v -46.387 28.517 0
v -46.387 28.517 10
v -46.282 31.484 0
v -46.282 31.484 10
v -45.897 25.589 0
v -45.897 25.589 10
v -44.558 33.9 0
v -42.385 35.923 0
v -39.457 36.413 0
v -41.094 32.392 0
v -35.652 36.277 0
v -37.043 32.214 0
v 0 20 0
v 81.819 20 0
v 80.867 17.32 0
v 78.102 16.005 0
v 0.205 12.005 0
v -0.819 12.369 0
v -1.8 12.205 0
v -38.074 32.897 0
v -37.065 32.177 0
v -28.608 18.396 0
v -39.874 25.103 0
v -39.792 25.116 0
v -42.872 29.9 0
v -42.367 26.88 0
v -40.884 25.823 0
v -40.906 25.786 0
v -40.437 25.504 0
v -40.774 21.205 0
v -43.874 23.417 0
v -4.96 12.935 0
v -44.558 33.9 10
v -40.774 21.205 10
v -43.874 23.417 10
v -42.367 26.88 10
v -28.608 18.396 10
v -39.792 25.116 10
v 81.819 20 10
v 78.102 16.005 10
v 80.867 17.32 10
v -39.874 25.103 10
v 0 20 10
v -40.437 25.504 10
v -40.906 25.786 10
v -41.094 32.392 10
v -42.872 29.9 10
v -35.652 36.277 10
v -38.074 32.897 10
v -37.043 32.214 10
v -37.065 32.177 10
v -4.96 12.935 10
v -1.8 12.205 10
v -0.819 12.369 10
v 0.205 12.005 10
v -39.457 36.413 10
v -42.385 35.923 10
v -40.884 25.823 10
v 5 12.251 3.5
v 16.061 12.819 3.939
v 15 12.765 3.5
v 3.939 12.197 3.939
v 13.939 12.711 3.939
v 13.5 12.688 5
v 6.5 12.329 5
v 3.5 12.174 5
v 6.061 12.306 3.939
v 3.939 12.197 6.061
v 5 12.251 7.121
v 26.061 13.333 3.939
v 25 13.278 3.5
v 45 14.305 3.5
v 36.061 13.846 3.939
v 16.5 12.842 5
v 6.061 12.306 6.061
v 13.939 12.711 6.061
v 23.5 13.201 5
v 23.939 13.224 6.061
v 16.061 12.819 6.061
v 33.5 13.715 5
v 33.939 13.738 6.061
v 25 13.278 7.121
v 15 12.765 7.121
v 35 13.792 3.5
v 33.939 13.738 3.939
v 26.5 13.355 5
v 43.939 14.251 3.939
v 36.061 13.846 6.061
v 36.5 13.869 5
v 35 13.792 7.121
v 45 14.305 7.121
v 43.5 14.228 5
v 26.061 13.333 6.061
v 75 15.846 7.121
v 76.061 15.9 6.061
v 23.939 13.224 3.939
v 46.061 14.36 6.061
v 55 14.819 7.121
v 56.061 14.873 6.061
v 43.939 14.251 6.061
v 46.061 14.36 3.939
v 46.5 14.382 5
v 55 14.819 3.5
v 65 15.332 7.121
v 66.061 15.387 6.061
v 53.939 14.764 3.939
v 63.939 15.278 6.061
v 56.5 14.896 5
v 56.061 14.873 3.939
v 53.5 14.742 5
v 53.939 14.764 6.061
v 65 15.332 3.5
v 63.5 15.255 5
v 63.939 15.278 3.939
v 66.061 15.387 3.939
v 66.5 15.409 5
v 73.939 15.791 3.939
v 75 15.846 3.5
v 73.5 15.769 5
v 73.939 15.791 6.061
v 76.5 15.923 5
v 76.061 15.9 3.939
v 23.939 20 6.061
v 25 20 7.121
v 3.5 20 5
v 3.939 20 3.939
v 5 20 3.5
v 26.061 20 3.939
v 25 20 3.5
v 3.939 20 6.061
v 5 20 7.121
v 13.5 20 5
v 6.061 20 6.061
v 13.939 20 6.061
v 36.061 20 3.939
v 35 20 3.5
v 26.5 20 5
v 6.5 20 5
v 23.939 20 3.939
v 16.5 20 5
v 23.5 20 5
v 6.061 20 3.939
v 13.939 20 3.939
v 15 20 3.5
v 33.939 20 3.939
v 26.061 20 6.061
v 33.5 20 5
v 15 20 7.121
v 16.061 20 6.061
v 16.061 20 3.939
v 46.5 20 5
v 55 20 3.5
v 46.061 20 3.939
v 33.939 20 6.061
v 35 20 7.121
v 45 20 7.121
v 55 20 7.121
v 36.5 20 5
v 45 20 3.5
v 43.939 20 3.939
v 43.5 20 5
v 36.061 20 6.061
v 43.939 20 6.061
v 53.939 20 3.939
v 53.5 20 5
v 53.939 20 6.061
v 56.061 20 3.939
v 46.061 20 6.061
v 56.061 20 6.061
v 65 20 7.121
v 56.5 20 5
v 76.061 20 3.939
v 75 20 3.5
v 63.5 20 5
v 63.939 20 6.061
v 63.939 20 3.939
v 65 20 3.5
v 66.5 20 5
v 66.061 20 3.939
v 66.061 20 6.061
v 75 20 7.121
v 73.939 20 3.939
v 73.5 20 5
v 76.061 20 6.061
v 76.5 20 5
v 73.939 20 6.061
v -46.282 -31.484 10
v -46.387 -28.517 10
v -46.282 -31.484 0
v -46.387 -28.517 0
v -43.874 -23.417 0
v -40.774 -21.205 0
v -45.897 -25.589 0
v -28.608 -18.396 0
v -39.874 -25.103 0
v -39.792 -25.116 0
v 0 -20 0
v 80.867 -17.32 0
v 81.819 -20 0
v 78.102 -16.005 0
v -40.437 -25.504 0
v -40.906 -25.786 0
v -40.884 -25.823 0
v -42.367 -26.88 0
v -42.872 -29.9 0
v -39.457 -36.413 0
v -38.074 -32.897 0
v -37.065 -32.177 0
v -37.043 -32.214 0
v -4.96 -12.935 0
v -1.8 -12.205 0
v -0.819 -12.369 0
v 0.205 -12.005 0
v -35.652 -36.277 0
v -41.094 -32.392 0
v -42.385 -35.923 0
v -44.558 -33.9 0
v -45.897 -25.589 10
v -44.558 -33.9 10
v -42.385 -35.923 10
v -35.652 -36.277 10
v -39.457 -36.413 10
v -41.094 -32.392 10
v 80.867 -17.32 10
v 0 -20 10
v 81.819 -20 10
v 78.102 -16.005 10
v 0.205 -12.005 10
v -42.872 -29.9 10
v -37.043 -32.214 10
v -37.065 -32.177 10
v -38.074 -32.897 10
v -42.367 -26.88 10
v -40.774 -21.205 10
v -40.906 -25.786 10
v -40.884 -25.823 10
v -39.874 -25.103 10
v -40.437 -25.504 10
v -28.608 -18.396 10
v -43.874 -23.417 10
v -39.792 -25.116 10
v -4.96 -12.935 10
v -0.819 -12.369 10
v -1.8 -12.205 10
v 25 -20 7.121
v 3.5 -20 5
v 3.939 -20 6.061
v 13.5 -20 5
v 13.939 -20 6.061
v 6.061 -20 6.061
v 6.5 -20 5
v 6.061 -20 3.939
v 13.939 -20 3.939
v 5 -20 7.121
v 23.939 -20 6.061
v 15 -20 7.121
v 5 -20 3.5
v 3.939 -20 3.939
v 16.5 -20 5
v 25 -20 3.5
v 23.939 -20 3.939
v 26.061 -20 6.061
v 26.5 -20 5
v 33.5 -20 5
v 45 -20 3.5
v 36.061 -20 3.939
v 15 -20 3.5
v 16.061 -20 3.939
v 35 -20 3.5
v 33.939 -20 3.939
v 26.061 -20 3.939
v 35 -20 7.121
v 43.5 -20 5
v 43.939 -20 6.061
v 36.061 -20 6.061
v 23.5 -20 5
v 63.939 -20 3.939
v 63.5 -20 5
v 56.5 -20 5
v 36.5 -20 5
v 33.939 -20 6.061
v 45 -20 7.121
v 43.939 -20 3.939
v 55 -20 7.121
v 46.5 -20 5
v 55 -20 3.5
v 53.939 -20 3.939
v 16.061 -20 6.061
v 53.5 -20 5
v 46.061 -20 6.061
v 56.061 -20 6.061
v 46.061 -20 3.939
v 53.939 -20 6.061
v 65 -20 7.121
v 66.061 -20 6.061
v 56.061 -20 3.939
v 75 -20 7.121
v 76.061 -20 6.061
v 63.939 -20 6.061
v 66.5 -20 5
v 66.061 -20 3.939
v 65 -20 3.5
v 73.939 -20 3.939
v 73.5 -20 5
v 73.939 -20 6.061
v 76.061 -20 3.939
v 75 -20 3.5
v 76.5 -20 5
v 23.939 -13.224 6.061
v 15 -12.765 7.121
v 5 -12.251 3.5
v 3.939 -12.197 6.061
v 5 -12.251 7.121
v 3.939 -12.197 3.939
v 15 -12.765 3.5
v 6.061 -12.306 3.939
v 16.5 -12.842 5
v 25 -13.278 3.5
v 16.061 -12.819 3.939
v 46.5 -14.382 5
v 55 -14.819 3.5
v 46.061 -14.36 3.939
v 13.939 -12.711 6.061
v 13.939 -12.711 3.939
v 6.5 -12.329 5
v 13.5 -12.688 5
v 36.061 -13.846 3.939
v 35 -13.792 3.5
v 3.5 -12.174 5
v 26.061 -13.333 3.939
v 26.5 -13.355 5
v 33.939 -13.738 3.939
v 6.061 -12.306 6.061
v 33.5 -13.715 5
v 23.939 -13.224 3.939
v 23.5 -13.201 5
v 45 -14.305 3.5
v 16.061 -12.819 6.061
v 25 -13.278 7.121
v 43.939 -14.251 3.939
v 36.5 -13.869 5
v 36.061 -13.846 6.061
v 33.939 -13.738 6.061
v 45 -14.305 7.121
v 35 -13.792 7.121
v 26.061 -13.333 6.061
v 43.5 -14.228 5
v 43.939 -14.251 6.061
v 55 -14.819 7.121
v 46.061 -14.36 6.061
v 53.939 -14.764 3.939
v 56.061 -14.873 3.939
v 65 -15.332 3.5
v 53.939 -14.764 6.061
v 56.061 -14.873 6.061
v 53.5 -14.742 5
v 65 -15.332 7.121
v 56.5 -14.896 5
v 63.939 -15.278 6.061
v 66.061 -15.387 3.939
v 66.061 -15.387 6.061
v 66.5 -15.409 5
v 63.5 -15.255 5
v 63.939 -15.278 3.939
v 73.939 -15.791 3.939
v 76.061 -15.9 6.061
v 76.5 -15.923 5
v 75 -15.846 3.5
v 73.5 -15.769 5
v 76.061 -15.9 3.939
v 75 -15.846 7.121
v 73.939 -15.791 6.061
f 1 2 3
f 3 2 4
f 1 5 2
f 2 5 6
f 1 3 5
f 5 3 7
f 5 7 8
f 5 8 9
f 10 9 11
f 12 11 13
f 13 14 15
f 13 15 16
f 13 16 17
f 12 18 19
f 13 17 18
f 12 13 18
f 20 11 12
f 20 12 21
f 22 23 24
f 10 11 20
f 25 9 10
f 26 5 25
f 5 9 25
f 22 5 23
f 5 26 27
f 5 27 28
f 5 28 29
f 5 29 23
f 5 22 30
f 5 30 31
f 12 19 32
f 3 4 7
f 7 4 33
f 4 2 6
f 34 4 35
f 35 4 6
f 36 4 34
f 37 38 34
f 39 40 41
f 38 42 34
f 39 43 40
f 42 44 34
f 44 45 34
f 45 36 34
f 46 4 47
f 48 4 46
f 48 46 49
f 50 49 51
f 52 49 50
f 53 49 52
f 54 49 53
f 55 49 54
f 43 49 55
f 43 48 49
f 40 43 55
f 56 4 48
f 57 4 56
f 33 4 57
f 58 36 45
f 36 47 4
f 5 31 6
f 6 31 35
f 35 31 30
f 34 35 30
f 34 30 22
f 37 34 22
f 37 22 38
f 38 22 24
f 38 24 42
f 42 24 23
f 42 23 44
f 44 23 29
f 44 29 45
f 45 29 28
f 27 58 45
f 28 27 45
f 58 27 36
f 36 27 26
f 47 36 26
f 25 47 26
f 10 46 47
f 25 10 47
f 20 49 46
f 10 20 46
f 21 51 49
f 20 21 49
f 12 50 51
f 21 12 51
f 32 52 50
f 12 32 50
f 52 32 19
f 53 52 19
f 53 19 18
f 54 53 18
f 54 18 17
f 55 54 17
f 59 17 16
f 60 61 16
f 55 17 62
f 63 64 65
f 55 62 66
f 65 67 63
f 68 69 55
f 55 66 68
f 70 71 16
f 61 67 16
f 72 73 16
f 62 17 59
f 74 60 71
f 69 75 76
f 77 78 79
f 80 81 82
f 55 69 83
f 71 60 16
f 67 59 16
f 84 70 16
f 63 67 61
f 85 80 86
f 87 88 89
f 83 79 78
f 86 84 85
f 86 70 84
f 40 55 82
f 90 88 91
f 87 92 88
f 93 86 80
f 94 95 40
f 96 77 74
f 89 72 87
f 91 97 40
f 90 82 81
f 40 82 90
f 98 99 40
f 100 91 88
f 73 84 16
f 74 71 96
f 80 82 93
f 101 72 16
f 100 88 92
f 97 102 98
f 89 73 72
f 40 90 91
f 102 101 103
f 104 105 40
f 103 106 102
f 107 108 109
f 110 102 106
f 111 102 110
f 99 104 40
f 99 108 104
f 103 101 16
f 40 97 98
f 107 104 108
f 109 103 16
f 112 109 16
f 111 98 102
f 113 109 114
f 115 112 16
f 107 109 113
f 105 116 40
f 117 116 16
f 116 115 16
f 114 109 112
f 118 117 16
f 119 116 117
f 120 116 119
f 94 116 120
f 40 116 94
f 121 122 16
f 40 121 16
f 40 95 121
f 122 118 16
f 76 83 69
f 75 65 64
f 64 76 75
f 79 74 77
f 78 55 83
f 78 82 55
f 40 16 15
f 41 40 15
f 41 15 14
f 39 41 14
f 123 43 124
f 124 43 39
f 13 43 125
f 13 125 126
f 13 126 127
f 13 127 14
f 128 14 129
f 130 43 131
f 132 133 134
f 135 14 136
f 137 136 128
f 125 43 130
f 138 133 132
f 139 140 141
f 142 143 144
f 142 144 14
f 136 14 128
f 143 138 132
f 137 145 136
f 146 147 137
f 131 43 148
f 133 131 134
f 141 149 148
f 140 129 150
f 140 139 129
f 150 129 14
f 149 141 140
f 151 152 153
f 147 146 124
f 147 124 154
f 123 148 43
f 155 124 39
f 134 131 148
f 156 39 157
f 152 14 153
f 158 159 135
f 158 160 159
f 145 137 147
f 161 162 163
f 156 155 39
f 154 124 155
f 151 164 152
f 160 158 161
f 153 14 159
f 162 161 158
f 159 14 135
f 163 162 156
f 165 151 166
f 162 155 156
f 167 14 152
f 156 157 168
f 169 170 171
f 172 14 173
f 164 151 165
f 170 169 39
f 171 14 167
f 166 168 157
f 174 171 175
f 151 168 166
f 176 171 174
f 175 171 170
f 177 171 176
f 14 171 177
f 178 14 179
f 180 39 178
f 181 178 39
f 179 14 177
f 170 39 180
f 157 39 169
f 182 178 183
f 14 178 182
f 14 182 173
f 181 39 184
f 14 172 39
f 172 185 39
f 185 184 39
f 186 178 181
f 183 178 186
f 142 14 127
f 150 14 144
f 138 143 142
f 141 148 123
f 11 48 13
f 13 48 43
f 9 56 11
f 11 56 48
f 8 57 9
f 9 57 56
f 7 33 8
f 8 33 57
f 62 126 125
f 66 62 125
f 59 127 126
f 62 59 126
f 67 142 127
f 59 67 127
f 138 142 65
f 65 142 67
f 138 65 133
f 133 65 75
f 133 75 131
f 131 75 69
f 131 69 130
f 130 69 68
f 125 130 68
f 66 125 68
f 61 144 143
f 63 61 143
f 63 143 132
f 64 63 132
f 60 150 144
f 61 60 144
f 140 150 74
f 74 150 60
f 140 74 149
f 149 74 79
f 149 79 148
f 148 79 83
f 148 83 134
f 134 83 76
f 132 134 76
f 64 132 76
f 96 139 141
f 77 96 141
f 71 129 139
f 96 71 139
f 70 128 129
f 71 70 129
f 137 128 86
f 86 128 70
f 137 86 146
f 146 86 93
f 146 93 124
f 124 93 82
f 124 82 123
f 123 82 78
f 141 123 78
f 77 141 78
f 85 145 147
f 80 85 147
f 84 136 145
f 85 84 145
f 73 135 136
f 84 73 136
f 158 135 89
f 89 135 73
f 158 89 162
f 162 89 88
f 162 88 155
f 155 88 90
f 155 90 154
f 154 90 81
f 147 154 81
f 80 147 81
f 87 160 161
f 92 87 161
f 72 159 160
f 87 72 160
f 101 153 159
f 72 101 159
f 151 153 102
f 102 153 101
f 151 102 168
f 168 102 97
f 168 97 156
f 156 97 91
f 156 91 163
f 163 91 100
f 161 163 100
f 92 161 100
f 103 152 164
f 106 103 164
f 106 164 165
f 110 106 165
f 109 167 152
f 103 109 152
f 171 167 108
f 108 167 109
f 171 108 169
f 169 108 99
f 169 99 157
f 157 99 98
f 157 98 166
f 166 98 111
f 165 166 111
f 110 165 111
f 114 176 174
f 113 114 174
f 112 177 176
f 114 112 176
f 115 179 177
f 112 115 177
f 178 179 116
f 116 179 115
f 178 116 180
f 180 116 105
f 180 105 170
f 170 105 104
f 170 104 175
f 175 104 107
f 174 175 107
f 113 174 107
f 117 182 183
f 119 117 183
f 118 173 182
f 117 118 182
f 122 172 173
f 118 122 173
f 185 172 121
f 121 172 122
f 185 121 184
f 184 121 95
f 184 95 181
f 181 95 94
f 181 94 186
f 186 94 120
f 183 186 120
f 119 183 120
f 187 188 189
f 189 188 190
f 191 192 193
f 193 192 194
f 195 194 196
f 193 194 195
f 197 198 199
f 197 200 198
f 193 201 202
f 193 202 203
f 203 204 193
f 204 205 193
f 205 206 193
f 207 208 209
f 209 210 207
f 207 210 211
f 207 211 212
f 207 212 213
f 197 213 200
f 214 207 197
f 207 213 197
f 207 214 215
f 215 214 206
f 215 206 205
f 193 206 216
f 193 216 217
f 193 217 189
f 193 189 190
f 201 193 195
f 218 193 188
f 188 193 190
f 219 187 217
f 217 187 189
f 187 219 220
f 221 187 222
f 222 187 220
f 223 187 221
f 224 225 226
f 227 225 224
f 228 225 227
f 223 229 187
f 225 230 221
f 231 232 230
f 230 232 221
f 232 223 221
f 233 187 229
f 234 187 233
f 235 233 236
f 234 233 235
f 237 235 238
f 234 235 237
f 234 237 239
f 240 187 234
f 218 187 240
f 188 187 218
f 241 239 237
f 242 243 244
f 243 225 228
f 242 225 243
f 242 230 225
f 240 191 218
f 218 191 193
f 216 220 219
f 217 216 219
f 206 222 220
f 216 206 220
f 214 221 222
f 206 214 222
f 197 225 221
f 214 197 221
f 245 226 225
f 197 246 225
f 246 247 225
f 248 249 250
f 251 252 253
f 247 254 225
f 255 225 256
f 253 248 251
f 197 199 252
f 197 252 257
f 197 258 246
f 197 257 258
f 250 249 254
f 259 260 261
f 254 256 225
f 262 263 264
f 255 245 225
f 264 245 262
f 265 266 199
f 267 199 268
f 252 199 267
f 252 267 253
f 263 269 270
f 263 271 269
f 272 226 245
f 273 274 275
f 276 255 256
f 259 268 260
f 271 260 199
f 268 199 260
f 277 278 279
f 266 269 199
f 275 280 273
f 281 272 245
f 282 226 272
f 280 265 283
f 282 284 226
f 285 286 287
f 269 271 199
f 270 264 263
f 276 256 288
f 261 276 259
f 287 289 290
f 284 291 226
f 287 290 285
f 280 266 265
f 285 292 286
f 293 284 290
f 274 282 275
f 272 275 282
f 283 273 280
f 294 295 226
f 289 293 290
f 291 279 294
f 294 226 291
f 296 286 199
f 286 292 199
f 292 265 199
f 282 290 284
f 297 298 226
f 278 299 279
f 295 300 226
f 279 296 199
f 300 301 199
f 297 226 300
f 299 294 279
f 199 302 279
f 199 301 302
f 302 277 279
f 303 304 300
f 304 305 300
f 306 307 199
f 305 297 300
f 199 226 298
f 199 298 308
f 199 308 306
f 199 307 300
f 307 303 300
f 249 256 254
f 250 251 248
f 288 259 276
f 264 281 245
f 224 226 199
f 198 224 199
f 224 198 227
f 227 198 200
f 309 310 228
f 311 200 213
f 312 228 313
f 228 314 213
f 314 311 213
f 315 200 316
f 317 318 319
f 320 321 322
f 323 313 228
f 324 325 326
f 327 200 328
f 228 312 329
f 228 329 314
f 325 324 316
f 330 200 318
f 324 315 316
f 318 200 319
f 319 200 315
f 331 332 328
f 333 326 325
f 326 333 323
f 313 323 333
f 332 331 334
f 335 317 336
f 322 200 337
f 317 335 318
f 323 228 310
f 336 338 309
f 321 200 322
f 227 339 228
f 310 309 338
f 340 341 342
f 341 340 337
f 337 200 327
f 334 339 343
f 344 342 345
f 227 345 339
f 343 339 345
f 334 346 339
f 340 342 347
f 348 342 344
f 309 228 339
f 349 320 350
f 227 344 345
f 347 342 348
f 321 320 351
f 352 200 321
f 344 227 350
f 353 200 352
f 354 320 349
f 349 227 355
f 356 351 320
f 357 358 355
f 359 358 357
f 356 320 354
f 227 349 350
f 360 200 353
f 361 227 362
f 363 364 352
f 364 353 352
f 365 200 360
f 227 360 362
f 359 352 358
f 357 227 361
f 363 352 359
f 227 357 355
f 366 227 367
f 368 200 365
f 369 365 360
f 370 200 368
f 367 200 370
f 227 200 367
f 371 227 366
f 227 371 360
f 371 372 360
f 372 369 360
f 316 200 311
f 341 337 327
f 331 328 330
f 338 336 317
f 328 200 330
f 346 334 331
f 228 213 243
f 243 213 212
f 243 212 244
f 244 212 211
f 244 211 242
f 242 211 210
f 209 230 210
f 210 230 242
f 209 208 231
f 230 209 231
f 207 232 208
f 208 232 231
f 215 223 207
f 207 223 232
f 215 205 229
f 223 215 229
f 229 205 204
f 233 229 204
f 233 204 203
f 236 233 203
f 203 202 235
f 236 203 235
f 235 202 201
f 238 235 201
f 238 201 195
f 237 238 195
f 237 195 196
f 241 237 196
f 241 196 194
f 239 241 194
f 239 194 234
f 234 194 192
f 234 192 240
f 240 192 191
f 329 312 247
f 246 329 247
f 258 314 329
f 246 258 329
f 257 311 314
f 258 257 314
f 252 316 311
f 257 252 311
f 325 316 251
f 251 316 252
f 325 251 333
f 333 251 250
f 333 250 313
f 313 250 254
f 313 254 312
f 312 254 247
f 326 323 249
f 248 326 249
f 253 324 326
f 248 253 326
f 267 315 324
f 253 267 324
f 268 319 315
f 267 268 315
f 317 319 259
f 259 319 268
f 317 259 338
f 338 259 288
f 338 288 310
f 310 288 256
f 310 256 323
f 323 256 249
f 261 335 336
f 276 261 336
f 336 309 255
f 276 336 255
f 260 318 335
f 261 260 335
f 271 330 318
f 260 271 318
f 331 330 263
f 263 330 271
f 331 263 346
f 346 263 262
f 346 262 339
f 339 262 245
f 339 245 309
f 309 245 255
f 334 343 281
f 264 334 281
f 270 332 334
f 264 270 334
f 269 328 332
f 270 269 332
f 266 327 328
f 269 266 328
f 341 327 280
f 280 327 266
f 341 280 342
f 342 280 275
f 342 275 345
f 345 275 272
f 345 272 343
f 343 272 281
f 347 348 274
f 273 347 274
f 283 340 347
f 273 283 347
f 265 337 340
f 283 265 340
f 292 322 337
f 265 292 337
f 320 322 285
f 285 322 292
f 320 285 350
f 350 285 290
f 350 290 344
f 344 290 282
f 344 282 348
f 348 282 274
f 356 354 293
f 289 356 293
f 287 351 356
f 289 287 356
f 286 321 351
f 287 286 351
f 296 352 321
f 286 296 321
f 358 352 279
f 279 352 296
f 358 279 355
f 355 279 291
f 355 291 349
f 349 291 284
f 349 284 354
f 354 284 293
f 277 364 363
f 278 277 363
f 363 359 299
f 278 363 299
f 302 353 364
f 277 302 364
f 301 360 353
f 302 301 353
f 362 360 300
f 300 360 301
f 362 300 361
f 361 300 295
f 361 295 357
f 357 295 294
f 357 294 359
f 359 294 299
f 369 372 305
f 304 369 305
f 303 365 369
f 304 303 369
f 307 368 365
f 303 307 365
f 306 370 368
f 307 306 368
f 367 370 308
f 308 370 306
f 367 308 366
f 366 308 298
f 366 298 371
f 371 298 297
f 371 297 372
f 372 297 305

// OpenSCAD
// file: ../ShapeLibrary/Teardrop.scad
// Base teardrop shape, one end centred on origin, extending for given distance
// (positive or negative) along the Z axis.
//
// l = length of shape (negative extends in -z direction)
// d = diametar of hole
// q = quadrant orientation of point: 
//       0 => +x
//       1 => +y
//       2 => -x
//       3 => -y
//
module TeardropZ(l,d,q)
{
    zl = abs(l);
    zo = min(0,l);
    translate([0,0,zo])
    {
        cylinder(r=d/2,h=zl);
        rotate([0,0,-45+q*90]) cube([d/2,d/2,zl]);
    }
}

// Teardrop shape aligned along X-axis.
//
// Use for making horizontal holes in objects.
//
// l = length of shape (negative extends in -x direction)
// d = diametar of hole
// q = quadrant orientation of point: 
//       0 => +z
//       1 => +y
//       2 => -z
//       3 => -y
module TeardropX(l,d,q)
{
    rotate([0,-90,0]) TeardropZ(-l,d,q);
}

// Teardrop shape aligned along Y-axis.
//
// Use for making horizontal holes in objects.
//
// l = length of shape (negative extends in -y direction)
// d = diametar of hole
// q = quadrant orientation of point: 
//       0 => +z
//       1 => +x
//       2 => -z
//       3 => -x
module TeardropY(l,d,q)
{
    rotate([90,0,0]) TeardropZ(-l,d,-q+1);
}


// Examples
TeardropZ(30,10,1,$fn=12);
TeardropX(30,10,0);
TeardropY(30,10,0);
// main file
use <../ShapeLibrary/Teardrop.scad>

// Reduce hole for clip-on slot
// Also used as extension to avoid coincident surfaces
delta = 0.5;

module RoundedEnd(l,r,h)
{
    union()
    {
      translate([0,0,0]) cylinder(r=r,h=h);
      translate([0,-r,0]) cube(size=[l+r,2*r,h]);
    }
}

module RoundedEnds(l,r,h)
{
    union()
    {
      translate([0,0,0]) cylinder(r=r,h=h);
      translate([l,0,0]) cylinder(r=r,h=h);
      translate([0,-r,0]) cube(size=[l,2*r,h]);
    }
}

module TaperedRoundedEnds(l,r,h)
{
    intersection()
    {
        RoundedEnds(l,r,h);
        rotate(asin(r/l), [0,0,-1]) RoundedEnd(l,r,h);
    }
}

module ElectronicsBracketBlank(length1, length2, holedia, offset, thickness)
{
    union()
    {
        // Arm segment that hangs on top rail
        rotate(asin(offset/length1), [0,0,-1])
        {
            translate([-length1,0,0])
            {
                difference()
                {
                    TaperedRoundedEnds(length1, holedia, thickness);
                    translate([0,0,-delta]) cylinder(r=holedia/2,h=thickness+2*delta);
                    // Cut-out for in situ clip-on attachment
                    rotate([0,0,-18])
                        translate([0,-(holedia-delta)/2,-delta])
                            cube([length1, holedia-delta, thickness+2*delta]);                        
                }
            }
        }
        // Arm segment for attaching mounting plate
        translate([0,-holedia/2,0])
        {
            rotate(asin(holedia/2/length2),[0,0,1])
            {
                TaperedRoundedEnds(length2, holedia/2, thickness);
            }
        }
    }
}


module ElectronicsBracket(length1, length2, holedia, offset, thickness, 
                          mountholes, mountholedia, orientation)
{
    difference()
    {
        if (orientation < 0)
            mirror([0,1,0])
                ElectronicsBracketBlank(length1, length2, holedia, offset, thickness);
        else
            ElectronicsBracketBlank(length1, length2, holedia, offset, thickness);
        // Mounting holes
        for (x = mountholes)
        {
            # translate([x,holedia,thickness/2])
                TeardropY(-holedia*3, mountholedia, 0);
            //    rotate([90,0,0]) 
            //        cylinder(r=mountholedia/2,h=holedia*3);
        }
    }
}

// Lay up mirrored pair of brackets
translate([0,20,0]) ElectronicsBracket(40, 78, 8, 9, 10, [5,15,25,35,45,55,65,75], 3, 1, $fn=8);
translate([0,-20,0]) ElectronicsBracket(40, 78, 8, 9, 10, [5,15,25,35,45,55,65,75], 3, -1, $fn=8);
